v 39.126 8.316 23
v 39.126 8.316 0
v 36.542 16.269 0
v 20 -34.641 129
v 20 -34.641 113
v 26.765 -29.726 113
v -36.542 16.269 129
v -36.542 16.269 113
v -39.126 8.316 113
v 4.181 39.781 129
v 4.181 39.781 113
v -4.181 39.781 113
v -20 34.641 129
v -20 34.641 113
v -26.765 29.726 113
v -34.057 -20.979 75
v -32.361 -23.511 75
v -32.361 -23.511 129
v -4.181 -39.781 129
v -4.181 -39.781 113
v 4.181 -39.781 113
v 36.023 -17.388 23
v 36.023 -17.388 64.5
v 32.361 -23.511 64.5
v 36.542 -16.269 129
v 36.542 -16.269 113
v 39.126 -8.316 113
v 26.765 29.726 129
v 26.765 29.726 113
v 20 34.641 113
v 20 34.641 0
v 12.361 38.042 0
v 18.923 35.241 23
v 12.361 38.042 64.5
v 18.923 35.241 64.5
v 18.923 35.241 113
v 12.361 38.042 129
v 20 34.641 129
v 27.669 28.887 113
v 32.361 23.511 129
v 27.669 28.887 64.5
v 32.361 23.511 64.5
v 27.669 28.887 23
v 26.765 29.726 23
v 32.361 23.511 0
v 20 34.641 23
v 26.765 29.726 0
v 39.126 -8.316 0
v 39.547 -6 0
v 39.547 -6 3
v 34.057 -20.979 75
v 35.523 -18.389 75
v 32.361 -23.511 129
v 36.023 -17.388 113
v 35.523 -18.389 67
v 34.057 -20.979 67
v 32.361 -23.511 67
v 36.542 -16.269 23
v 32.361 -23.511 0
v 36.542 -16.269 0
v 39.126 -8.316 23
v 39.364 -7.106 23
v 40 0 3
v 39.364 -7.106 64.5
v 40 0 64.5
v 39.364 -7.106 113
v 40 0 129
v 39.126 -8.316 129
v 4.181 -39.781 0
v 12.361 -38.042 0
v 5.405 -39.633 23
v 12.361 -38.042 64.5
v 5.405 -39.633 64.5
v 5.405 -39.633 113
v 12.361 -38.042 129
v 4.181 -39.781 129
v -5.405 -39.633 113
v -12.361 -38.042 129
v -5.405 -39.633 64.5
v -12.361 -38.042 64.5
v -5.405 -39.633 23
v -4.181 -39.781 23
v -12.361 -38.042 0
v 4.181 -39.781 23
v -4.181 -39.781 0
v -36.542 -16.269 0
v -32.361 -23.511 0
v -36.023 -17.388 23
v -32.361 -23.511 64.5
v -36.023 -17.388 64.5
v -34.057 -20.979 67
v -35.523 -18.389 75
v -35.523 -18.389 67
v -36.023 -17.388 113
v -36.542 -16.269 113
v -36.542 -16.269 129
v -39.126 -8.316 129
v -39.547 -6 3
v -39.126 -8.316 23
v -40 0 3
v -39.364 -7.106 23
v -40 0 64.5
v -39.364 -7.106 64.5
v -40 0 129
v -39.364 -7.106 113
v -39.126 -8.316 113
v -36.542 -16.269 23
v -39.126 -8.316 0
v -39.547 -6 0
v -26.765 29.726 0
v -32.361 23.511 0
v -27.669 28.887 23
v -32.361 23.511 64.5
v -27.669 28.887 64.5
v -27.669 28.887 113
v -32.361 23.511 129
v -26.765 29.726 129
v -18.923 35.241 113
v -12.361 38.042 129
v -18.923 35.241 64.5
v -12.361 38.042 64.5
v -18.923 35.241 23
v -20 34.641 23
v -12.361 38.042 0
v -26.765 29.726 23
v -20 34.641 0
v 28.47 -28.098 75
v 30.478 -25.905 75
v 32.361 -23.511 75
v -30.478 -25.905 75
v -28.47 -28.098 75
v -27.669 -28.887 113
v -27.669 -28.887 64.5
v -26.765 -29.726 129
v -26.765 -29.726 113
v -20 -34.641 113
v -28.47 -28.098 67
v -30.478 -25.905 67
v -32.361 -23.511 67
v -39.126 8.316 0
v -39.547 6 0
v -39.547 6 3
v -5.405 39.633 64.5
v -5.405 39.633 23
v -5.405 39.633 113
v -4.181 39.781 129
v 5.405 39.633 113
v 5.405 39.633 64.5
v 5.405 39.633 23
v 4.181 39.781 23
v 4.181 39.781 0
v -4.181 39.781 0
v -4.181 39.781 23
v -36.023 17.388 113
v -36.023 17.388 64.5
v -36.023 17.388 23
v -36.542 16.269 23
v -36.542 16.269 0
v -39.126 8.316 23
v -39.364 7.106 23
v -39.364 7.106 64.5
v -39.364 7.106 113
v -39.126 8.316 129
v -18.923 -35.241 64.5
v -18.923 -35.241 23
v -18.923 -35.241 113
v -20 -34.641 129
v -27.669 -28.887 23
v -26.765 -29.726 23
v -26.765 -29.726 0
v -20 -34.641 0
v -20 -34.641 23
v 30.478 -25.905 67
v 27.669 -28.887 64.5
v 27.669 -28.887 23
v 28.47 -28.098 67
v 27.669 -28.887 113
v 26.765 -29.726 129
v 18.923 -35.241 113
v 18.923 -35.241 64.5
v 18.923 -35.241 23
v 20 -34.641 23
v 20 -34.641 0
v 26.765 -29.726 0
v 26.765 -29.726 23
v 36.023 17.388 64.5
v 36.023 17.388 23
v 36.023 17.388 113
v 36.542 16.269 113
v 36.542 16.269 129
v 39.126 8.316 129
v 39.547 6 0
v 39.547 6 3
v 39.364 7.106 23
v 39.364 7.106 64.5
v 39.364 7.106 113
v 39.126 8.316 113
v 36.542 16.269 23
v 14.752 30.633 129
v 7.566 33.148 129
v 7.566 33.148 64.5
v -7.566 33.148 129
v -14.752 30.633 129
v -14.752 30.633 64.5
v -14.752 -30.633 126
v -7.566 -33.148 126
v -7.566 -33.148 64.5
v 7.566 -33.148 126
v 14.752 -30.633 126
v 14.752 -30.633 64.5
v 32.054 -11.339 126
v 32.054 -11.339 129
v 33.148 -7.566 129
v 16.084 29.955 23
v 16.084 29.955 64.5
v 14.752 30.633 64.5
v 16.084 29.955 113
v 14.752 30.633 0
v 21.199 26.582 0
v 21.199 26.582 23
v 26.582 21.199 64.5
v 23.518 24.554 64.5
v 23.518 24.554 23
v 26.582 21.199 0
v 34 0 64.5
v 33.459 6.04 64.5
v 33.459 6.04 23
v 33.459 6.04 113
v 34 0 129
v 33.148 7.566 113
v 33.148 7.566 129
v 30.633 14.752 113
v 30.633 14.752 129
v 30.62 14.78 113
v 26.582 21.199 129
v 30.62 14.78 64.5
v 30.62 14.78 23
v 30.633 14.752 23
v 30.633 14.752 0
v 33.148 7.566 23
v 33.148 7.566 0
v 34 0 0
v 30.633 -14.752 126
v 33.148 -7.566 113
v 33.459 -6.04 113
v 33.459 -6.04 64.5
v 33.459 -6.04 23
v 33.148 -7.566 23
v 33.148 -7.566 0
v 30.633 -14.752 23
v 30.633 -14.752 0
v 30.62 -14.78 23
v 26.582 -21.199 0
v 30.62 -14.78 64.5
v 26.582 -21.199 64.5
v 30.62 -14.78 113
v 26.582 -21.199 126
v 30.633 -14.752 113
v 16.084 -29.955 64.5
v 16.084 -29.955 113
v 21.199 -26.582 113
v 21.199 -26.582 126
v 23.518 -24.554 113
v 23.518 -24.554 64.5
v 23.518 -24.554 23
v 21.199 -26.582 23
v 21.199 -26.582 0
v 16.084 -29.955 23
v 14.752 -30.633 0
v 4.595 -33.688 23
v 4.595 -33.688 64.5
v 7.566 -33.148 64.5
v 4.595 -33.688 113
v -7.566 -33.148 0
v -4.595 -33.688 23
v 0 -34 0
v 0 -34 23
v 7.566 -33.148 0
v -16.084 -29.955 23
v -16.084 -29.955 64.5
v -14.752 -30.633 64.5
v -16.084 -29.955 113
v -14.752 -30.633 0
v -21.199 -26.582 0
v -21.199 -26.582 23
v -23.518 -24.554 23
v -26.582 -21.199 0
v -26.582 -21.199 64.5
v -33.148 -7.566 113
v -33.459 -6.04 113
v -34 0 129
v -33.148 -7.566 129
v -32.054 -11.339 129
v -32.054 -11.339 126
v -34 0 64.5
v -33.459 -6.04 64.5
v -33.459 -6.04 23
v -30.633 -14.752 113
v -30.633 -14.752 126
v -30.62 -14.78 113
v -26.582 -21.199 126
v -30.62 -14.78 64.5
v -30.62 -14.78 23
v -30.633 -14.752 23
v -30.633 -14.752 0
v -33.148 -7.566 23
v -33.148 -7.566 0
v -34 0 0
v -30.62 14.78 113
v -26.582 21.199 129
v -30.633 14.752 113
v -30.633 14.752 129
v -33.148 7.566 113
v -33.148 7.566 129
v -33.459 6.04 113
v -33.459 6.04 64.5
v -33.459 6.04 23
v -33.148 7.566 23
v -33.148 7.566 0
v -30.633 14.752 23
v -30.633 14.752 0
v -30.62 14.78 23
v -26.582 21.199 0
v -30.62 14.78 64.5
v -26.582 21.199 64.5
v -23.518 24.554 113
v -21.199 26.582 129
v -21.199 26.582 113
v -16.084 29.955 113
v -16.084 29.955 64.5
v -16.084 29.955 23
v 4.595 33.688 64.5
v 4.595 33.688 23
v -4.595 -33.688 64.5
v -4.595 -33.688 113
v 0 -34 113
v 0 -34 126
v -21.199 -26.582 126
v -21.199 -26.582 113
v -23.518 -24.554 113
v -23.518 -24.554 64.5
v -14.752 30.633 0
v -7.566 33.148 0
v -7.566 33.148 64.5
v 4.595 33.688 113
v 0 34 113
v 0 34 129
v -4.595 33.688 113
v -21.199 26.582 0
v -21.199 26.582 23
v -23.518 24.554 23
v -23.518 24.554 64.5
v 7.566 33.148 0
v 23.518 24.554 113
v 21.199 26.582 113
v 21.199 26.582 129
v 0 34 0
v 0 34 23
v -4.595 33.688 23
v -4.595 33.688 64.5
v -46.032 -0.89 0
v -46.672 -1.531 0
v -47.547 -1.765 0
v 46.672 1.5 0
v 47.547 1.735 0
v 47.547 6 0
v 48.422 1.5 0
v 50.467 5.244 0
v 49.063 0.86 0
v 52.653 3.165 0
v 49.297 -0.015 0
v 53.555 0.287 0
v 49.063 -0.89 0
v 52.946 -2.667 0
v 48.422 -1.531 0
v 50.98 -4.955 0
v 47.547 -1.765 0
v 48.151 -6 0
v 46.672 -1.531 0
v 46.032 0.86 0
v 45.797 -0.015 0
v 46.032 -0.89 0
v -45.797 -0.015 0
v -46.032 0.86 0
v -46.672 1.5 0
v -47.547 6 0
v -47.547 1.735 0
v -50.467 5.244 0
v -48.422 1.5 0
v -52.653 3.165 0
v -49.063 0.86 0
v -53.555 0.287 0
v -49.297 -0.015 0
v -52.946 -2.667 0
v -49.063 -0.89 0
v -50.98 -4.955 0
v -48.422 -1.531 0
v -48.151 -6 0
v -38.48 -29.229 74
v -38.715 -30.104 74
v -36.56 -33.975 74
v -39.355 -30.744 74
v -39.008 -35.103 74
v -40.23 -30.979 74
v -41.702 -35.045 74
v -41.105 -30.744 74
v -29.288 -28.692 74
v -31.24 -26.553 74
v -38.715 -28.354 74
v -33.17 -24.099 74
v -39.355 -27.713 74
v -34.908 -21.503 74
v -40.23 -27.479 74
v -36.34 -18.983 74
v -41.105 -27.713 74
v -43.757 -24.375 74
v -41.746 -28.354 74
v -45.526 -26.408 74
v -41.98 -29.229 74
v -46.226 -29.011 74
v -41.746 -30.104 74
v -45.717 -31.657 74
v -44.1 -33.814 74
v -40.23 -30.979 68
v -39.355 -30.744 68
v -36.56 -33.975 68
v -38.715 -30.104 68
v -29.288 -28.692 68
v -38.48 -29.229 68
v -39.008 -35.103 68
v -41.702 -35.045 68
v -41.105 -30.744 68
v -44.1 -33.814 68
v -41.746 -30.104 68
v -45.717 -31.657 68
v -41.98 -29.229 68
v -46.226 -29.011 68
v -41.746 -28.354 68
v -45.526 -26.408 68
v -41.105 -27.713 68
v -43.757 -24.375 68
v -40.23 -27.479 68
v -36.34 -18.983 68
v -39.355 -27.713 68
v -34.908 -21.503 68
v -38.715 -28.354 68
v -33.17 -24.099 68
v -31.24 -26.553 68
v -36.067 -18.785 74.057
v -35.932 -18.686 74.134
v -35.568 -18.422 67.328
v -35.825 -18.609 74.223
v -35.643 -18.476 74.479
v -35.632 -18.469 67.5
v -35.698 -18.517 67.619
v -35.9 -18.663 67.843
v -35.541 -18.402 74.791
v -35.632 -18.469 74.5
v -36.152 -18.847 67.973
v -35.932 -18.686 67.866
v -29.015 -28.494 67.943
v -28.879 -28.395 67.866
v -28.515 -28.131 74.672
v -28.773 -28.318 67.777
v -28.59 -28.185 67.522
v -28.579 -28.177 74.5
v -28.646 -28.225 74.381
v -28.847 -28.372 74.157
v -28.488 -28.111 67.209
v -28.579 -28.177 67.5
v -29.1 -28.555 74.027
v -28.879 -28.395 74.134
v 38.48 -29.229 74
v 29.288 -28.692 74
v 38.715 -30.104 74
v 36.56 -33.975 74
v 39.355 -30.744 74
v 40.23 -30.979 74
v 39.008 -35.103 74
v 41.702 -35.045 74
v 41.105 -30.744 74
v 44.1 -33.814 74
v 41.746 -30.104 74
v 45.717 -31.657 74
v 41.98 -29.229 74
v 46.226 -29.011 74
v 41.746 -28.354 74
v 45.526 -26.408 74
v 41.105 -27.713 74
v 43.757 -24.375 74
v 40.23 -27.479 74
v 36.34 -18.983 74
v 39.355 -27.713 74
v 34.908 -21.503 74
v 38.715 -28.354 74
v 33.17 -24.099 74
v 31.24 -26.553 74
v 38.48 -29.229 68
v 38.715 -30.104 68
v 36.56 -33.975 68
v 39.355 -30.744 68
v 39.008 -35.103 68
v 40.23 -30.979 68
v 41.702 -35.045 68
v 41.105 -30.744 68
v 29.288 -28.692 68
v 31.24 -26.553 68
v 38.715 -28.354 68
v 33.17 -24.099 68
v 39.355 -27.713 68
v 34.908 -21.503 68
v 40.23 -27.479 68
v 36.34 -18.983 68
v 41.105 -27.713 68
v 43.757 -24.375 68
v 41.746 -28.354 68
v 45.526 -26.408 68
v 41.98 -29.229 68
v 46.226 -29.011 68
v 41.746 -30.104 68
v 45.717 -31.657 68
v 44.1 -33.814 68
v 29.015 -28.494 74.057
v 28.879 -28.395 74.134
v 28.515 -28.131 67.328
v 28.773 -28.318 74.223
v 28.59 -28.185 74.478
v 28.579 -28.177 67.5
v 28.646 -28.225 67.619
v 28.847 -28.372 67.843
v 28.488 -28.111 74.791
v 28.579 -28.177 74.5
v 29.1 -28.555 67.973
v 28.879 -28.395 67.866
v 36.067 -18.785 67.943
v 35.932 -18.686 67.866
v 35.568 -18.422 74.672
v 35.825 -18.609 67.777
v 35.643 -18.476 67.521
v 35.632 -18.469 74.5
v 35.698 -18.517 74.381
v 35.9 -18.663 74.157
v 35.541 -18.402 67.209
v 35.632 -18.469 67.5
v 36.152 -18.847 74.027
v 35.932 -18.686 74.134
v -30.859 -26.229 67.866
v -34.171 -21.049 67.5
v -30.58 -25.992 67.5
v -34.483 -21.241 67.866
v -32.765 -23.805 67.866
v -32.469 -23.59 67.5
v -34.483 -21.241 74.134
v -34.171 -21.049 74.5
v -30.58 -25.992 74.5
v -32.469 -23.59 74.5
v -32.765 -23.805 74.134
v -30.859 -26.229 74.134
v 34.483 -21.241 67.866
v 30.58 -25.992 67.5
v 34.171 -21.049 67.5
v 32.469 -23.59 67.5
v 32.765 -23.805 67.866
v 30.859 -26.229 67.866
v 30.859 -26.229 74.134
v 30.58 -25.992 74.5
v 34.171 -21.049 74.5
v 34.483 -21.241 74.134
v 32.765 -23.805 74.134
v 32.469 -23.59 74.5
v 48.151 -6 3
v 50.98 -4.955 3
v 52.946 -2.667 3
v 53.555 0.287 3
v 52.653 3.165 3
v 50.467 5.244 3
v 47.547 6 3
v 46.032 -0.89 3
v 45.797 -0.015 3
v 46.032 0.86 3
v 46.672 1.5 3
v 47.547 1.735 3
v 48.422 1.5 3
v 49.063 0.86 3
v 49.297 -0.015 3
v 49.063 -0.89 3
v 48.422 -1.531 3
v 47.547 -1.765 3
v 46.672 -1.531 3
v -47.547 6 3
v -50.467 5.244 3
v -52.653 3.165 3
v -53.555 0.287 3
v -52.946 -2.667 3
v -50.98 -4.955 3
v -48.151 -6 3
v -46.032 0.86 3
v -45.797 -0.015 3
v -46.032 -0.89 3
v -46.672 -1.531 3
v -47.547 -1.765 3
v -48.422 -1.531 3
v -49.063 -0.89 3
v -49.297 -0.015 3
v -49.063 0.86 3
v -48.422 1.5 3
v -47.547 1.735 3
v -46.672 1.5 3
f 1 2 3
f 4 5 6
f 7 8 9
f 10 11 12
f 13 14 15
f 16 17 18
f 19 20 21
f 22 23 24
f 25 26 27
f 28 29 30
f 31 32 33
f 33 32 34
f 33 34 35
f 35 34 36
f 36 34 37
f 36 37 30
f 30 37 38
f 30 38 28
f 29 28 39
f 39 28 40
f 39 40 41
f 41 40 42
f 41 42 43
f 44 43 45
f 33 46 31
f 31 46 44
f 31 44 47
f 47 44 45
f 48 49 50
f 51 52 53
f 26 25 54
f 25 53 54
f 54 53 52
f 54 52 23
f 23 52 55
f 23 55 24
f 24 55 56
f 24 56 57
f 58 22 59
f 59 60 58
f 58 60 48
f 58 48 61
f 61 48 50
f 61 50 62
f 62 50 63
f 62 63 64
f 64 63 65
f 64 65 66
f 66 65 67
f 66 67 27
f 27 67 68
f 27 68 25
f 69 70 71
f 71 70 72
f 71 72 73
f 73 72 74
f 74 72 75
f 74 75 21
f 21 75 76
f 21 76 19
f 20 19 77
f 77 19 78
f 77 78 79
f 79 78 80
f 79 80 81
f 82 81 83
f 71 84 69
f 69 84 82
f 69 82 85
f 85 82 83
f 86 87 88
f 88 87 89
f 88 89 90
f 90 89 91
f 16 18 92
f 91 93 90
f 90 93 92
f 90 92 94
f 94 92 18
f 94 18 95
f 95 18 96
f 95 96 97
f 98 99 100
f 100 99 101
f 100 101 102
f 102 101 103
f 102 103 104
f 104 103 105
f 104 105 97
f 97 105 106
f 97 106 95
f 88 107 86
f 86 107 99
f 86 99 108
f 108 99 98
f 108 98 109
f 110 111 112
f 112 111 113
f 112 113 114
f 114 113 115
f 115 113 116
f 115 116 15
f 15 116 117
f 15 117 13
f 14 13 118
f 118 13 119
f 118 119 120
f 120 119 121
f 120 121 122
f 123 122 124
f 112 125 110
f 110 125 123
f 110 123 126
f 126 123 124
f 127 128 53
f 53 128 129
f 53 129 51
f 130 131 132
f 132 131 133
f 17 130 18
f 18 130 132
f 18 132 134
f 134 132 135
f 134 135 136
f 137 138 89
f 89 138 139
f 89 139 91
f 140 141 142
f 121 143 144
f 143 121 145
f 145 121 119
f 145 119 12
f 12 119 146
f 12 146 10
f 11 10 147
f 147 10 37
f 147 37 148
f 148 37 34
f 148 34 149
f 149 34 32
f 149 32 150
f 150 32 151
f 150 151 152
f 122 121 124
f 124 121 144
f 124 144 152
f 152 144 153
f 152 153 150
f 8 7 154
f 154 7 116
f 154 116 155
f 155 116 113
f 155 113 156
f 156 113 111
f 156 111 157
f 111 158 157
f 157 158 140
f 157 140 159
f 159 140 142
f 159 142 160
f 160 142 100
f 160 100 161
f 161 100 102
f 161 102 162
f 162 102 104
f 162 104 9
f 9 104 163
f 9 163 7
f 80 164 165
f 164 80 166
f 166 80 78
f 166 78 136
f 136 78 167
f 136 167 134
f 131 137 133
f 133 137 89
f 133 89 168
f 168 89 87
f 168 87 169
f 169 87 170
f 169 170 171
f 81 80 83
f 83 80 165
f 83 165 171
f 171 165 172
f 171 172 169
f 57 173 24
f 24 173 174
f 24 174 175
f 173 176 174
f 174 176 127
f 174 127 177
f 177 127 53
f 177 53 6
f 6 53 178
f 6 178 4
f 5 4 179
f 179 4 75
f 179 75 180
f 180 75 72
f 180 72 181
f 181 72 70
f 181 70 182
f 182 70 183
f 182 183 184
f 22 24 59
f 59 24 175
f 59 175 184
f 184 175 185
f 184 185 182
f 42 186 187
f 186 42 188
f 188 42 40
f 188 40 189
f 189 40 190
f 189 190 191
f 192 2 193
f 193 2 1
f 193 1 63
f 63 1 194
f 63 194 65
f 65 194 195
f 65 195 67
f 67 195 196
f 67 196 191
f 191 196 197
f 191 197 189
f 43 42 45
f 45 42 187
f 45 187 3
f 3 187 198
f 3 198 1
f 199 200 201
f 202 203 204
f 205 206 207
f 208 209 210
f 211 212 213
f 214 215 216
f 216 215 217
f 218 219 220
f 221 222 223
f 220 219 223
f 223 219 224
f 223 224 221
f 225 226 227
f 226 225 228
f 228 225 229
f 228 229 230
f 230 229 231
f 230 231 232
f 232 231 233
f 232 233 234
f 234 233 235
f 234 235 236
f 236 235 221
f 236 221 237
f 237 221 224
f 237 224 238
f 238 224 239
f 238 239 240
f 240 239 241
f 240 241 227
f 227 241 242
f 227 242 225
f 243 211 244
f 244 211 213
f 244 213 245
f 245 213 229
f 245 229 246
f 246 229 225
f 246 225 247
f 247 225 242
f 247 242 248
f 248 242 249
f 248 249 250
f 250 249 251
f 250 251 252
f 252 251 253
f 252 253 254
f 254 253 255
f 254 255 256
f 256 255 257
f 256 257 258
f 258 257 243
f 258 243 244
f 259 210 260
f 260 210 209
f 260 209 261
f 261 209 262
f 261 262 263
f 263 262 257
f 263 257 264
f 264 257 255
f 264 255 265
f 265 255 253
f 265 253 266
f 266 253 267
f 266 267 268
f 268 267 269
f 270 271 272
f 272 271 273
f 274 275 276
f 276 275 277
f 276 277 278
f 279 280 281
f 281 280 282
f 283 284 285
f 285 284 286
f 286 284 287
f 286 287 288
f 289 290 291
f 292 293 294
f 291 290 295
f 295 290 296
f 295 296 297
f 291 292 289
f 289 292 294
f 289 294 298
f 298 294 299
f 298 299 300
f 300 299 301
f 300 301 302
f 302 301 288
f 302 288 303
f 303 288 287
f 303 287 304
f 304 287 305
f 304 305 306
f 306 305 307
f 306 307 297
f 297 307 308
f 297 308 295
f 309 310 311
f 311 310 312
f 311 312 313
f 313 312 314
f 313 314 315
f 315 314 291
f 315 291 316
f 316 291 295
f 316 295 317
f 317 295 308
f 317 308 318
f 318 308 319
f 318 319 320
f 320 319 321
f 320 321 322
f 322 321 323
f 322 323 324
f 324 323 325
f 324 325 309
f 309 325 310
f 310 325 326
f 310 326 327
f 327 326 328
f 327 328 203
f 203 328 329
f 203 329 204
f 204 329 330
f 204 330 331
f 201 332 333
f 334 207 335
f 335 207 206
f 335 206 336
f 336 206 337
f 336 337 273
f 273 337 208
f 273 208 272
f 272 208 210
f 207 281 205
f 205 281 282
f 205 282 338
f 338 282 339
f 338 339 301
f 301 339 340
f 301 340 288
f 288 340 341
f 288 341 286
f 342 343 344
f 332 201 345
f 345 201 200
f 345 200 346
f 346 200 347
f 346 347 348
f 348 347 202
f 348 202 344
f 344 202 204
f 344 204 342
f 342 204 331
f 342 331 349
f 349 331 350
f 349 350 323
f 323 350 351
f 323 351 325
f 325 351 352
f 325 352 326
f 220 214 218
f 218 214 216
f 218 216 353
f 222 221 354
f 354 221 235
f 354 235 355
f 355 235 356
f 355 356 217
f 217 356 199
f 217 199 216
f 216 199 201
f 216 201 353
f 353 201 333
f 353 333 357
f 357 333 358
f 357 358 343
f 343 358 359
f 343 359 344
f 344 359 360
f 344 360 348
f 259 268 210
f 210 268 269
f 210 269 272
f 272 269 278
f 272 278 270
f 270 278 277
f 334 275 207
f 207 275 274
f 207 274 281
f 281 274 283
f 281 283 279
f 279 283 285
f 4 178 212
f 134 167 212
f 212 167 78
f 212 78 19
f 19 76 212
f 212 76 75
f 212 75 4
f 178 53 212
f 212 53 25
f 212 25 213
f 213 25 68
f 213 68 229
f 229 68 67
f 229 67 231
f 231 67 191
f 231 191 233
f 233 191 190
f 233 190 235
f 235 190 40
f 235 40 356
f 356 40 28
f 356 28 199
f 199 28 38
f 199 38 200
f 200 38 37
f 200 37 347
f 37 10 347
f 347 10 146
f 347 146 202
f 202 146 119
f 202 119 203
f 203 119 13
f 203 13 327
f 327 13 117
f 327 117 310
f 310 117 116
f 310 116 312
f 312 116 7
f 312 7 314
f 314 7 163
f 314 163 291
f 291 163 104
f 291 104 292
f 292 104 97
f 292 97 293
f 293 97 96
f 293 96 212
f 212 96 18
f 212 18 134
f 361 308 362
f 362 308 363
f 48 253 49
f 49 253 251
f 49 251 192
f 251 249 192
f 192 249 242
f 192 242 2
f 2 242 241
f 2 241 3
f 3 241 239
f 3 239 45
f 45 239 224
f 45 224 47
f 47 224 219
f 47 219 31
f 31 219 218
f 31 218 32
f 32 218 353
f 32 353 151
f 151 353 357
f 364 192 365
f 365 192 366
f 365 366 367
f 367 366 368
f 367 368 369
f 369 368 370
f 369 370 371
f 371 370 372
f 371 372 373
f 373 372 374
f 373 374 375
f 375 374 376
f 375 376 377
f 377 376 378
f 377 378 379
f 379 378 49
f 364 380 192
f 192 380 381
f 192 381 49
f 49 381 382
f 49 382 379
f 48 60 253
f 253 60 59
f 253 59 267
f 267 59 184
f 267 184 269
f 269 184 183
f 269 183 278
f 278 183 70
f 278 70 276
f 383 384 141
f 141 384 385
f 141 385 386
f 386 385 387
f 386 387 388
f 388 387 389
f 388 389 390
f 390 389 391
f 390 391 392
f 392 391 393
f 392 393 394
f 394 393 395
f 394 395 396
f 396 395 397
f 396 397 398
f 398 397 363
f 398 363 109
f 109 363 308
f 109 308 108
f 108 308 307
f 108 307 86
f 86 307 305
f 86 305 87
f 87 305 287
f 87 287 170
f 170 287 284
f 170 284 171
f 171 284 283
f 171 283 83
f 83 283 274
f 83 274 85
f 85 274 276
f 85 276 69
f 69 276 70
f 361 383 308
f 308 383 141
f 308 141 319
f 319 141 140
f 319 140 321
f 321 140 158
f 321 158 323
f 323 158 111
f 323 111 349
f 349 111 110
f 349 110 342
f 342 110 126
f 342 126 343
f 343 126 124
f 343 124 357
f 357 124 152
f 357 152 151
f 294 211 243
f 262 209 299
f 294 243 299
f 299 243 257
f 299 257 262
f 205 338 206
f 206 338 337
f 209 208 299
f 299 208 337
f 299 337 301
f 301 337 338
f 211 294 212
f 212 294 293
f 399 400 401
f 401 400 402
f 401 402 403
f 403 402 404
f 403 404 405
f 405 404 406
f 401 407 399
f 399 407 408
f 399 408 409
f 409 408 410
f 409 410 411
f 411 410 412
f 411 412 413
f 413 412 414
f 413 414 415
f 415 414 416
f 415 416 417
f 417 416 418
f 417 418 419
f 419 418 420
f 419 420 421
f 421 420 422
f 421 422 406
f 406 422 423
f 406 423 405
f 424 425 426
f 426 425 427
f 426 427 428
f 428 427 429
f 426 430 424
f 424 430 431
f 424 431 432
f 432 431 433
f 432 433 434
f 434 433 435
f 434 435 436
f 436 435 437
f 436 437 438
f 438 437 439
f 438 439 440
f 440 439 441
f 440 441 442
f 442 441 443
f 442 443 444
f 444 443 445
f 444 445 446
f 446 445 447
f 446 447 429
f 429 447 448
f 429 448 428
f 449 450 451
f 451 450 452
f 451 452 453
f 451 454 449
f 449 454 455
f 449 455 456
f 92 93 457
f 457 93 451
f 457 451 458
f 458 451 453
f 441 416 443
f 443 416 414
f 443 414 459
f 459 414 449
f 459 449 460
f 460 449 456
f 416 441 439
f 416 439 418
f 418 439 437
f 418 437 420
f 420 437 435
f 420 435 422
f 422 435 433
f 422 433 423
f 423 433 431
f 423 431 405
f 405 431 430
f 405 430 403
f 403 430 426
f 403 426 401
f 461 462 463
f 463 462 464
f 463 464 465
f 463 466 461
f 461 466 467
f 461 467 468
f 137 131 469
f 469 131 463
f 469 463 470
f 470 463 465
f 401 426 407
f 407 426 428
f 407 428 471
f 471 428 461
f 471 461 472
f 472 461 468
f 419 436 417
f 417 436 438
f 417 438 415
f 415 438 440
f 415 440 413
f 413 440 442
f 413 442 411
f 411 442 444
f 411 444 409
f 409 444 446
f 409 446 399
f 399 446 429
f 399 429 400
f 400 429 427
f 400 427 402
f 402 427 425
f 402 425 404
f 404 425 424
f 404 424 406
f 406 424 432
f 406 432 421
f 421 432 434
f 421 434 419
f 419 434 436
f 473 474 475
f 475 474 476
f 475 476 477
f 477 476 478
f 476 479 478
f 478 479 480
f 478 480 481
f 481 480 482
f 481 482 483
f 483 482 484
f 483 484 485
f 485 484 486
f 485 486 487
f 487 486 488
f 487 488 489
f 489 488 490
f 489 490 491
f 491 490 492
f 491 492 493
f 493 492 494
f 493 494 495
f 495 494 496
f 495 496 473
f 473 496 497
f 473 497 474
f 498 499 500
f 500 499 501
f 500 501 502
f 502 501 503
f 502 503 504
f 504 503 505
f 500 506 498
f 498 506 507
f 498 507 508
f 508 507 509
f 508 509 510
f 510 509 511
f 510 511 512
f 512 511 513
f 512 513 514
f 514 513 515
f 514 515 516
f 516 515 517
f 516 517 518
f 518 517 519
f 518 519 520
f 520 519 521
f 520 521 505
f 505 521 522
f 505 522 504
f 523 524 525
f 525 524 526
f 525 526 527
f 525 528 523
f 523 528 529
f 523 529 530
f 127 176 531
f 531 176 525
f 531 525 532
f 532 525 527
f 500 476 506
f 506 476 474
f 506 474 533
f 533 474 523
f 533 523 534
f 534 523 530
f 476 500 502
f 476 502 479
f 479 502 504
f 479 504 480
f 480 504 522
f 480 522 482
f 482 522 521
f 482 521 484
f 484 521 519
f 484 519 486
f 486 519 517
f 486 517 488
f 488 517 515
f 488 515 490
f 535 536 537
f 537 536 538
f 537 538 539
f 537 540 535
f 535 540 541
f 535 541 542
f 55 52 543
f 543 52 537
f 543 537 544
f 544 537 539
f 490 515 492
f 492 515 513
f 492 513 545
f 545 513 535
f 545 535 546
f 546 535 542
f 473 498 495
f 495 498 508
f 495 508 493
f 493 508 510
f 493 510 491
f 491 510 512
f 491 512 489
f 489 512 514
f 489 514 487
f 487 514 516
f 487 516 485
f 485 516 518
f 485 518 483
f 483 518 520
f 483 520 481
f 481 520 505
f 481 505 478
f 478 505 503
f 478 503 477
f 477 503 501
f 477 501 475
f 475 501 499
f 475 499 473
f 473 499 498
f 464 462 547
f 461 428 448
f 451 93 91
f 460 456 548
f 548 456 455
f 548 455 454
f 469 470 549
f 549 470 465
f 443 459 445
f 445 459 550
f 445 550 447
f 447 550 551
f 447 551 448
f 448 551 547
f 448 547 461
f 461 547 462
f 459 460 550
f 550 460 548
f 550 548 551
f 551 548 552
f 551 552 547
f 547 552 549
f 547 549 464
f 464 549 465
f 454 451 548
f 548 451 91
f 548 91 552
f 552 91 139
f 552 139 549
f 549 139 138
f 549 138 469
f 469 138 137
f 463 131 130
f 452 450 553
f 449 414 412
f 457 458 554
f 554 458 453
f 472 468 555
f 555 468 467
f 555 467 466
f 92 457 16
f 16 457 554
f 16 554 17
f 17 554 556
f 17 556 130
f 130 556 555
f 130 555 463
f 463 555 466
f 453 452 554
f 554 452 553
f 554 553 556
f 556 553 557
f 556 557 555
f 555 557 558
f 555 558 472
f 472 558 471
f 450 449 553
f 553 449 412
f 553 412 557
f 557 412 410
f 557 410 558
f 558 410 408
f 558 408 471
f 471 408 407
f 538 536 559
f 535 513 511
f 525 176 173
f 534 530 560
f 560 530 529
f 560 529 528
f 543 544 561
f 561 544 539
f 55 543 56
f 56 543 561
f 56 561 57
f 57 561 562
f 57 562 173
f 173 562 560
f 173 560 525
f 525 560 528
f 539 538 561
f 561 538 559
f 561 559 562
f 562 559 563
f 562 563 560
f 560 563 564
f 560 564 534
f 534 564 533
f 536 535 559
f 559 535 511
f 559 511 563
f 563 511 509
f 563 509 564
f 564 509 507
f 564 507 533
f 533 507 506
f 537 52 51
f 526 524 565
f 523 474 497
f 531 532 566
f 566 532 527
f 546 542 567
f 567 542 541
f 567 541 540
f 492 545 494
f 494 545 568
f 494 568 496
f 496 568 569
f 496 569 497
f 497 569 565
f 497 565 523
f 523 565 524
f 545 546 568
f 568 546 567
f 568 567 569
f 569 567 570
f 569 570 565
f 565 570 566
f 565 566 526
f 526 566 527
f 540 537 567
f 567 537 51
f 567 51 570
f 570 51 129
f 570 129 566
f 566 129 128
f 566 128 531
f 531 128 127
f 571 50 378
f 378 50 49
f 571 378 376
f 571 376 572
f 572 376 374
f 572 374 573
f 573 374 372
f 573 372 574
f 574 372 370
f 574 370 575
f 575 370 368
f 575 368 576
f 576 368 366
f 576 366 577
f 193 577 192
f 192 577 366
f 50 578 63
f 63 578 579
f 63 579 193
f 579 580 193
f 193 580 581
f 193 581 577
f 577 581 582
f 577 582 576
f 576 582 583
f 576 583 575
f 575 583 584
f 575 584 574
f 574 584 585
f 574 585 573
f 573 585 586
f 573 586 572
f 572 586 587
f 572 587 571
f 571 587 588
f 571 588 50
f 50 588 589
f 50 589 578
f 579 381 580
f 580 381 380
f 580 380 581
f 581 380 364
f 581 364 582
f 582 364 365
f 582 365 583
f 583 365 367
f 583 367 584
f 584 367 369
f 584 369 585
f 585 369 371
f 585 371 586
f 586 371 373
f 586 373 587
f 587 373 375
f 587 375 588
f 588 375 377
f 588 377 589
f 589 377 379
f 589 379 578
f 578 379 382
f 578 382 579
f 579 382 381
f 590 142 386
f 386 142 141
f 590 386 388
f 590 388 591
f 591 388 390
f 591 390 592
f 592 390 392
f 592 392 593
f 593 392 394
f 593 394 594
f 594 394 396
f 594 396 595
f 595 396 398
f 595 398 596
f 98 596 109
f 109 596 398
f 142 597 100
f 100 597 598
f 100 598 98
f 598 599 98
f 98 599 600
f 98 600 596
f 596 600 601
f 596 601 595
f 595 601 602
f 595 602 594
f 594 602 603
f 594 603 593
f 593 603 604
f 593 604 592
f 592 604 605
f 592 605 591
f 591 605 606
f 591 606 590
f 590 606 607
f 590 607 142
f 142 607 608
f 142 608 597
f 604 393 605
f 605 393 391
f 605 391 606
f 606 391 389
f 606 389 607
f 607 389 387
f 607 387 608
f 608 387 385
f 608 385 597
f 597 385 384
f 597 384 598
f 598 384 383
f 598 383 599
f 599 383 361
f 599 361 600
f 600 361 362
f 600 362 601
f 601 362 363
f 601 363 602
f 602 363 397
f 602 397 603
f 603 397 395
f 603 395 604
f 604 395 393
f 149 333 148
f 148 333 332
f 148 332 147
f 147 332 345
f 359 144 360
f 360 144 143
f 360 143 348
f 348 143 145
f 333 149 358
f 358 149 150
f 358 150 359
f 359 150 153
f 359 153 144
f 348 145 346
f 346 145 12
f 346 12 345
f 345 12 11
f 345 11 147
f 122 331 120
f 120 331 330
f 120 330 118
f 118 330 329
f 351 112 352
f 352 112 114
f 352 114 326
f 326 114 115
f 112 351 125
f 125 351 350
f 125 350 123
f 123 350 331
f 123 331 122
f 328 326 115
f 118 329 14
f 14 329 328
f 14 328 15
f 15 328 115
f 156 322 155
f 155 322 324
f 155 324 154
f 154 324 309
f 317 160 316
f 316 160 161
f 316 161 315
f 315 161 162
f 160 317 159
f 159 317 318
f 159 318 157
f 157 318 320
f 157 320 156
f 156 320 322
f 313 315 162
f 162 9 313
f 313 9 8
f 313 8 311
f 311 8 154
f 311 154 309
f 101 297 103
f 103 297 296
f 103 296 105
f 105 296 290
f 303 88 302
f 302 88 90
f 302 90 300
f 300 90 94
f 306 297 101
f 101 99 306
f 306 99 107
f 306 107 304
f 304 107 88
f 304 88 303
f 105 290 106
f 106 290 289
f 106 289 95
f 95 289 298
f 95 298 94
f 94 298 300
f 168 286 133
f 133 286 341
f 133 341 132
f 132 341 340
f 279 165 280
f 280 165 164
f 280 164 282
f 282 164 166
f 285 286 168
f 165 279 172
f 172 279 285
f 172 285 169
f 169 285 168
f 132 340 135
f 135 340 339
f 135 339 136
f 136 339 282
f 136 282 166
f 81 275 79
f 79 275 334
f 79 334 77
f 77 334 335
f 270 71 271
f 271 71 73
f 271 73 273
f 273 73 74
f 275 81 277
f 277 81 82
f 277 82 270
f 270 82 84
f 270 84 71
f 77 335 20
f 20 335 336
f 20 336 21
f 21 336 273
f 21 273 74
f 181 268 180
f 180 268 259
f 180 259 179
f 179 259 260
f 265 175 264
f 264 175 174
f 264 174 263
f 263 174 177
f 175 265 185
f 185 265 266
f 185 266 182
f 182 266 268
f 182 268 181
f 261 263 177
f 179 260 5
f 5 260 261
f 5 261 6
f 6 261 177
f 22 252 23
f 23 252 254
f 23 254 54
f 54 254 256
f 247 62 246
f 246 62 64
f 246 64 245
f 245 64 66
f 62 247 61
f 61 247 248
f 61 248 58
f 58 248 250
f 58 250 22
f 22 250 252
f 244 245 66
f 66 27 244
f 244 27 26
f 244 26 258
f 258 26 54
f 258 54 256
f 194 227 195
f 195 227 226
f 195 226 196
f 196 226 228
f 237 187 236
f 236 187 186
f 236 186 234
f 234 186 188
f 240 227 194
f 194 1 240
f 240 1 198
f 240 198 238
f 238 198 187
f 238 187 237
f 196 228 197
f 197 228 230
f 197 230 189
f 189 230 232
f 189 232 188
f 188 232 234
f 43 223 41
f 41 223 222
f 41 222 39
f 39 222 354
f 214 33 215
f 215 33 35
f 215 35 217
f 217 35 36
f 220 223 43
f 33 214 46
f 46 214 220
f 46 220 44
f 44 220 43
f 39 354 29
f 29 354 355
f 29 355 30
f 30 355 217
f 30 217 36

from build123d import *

# Parameters (mm, degrees)
SKETCH2_R           = 40
SKETCH2_R_2         = 34
BOSS_EXTRUDE1_DEPTH = 129
BOSS_EXTRUDE2_START = -3
BOSS_EXTRUDE2_DEPTH = 3
SKETCH4_R           = 1.75
BOSS_EXTRUDE3_DEPTH = 6
FILLET1_R           = 1
SKETCH5_R           = 1.75
BOSS_EXTRUDE4_DEPTH = 3
CUT_EXTRUDE1_DEPTH  = 45


with BuildPart() as part:
    # Sketch2 → Boss-Extrude1 (new body)
    with BuildSketch(Plane.XY):
        Circle(SKETCH2_R)
        Circle(SKETCH2_R_2, mode=Mode.SUBTRACT)
    extrude(amount=BOSS_EXTRUDE1_DEPTH)

    # Sketch3 → Boss-Extrude2 (add)
    with BuildSketch(Plane.XY.offset(129).offset(BOSS_EXTRUDE2_START)):
        with BuildLine():
            Line((-38.359258991, -11.338749917), (38.359258991, -11.338749917))
            ThreePointArc((38.359258991, -11.338749917), (0, -40), (-38.359258991, -11.338749917))
        make_face()
    extrude(amount=BOSS_EXTRUDE2_DEPTH)

    # Sketch4 → Boss-Extrude3 (add)
    # profile 1 of 2: a face of its own
    with BuildSketch(Plane.XY.offset(68)):
        with BuildLine():
            Line((-35.522508154, -18.388893781), (-43.756797007, -24.37476605))
            ThreePointArc((-43.756797007, -24.37476605), (-45.030952367, -32.827711895), (-36.559912698, -33.975427997))
            Line((-36.559912698, -33.975427997), (-28.469742754, -28.097575474))
            ThreePointArc((-28.469742754, -28.097575474), (-32.362272311, -23.509217998), (-35.522508154, -18.388893781))
        make_face()
        with Locations((-40.230085493, -29.228868016)):
            Circle(SKETCH4_R, mode=Mode.SUBTRACT)
    # profile 2 of 2: a face of its own
    with BuildSketch(Plane.XY.offset(68)):
        with BuildLine():
            Line((28.469742754, -28.097575474), (36.559912698, -33.975427997))
            ThreePointArc((36.559912698, -33.975427997), (45.030952367, -32.827711895), (43.756797007, -24.37476605))
            Line((43.756797007, -24.37476605), (35.522508154, -18.388893781))
            ThreePointArc((35.522508154, -18.388893781), (32.362272311, -23.509217998), (28.469742754, -28.097575474))
        make_face()
        with Locations(Location((40.230085493, -29.228868016, 0), (0, 0, 180))):
            Circle(SKETCH4_R, mode=Mode.SUBTRACT)
    extrude(amount=BOSS_EXTRUDE3_DEPTH)

    # Fillet1
    fillet1_edges = [part.edges().sort_by_distance(p)[0] for p in [
        (-32.362272311, -23.509217998, 74),
        (-32.362272311, -23.509217998, 68),
        (32.362272311, -23.509217998, 74),
        (32.362272311, -23.509217998, 68),
    ]]
    fillet(fillet1_edges, radius=FILLET1_R)

    # Sketch5 → Boss-Extrude4 (add)
    # profile 1 of 2: a face of its own
    with BuildSketch(Plane(origin=(0, 0, 0), x_dir=(-1, 0, 0), z_dir=(0, 0, -1))):
        with BuildLine():
            Line((-39.547439867, 6), (-47.547439867, 6))
            ThreePointArc((-47.547439867, 6), (-53.555028976, 0.287066347), (-48.151184551, -6))
            Line((-48.151184551, -6), (-39.547439867, -6))
            ThreePointArc((-39.547439867, -6), (-40, 0), (-39.547439867, 6))
        make_face()
        with Locations((-47.547439867, -0.015187819)):
            Circle(SKETCH5_R, mode=Mode.SUBTRACT)
    # profile 2 of 2: a face of its own
    with BuildSketch(Plane(origin=(0, 0, 0), x_dir=(-1, 0, 0), z_dir=(0, 0, -1))):
        with BuildLine():
            Line((39.547439867, -6), (48.151184551, -6))
            ThreePointArc((48.151184551, -6), (53.555028976, 0.287066347), (47.547439867, 6))
            Line((47.547439867, 6), (39.547439867, 6))
            ThreePointArc((39.547439867, 6), (40, 0), (39.547439867, -6))
        make_face()
        with Locations(Location((47.547439867, -0.015187819, 0), (0, 0, 180))):
            Circle(SKETCH5_R, mode=Mode.SUBTRACT)
    extrude(amount=-BOSS_EXTRUDE4_DEPTH)

    # Sketch6 → Cut-Extrude1 (cut, symmetric)
    with BuildSketch(Plane.XY.offset(68)):
        with BuildLine():
            Line((-5.405405405, 39.633087092), (-4.594594595, 33.688124028))
            ThreePointArc((-4.594594595, 33.688124028), (0, 34), (4.594594595, 33.688124028))
            Line((4.594594595, 33.688124028), (5.405405405, 39.633087092))
            ThreePointArc((5.405405405, 39.633087092), (0, 40), (-5.405405405, 39.633087092))
        make_face()
        with BuildLine():
            Line((18.922679261, 35.241058577), (16.084277372, 29.95489979))
            ThreePointArc((16.084277372, 29.95489979), (19.984698578, 27.506577809), (23.51848759, 24.553629904))
            Line((23.51848759, 24.553629904), (27.66880893, 28.886623417))
            ThreePointArc((27.66880893, 28.886623417), (23.511410092, 32.360679775), (18.922679261, 35.241058577))
        make_face()
        with BuildLine():
            Line((36.022943608, 17.388143485), (30.619502066, 14.779921962))
            ThreePointArc((30.619502066, 14.779921962), (32.335921554, 10.506577809), (33.45911769, 6.040483704))
            Line((33.45911769, 6.040483704), (39.363667871, 7.106451417))
            ThreePointArc((39.363667871, 7.106451417), (38.042260652, 12.360679775), (36.022943608, 17.388143485))
        make_face()
        with BuildLine():
            Line((39.363667871, -7.106451417), (33.45911769, -6.040483704))
            ThreePointArc((33.45911769, -6.040483704), (32.335921554, -10.506577809), (30.619502066, -14.779921962))
            Line((30.619502066, -14.779921962), (36.022943608, -17.388143485))
            ThreePointArc((36.022943608, -17.388143485), (38.042260652, -12.360679775), (39.363667871, -7.106451417))
        make_face()
        with BuildLine():
            Line((27.66880893, -28.886623417), (23.51848759, -24.553629904))
            ThreePointArc((23.51848759, -24.553629904), (19.984698578, -27.506577809), (16.084277372, -29.95489979))
            Line((16.084277372, -29.95489979), (18.922679261, -35.241058577))
            ThreePointArc((18.922679261, -35.241058577), (23.511410092, -32.360679775), (27.66880893, -28.886623417))
        make_face()
        with BuildLine():
            Line((5.405405405, -39.633087092), (4.594594595, -33.688124028))
            ThreePointArc((4.594594595, -33.688124028), (0, -34), (-4.594594595, -33.688124028))
            Line((-4.594594595, -33.688124028), (-5.405405405, -39.633087092))
            ThreePointArc((-5.405405405, -39.633087092), (0, -40), (5.405405405, -39.633087092))
        make_face()
        with BuildLine():
            Line((-18.922679261, -35.241058577), (-16.084277372, -29.95489979))
            ThreePointArc((-16.084277372, -29.95489979), (-19.984698578, -27.506577809), (-23.51848759, -24.553629904))
            Line((-23.51848759, -24.553629904), (-27.66880893, -28.886623417))
            ThreePointArc((-27.66880893, -28.886623417), (-23.511410092, -32.360679775), (-18.922679261, -35.241058577))
        make_face()
        with BuildLine():
            Line((-36.022943608, -17.388143485), (-30.619502066, -14.779921962))
            ThreePointArc((-30.619502066, -14.779921962), (-32.335921554, -10.506577809), (-33.45911769, -6.040483704))
            Line((-33.45911769, -6.040483704), (-39.363667871, -7.106451417))
            ThreePointArc((-39.363667871, -7.106451417), (-38.042260652, -12.360679775), (-36.022943608, -17.388143485))
        make_face()
        with BuildLine():
            Line((-39.363667871, 7.106451417), (-33.45911769, 6.040483704))
            ThreePointArc((-33.45911769, 6.040483704), (-32.335921554, 10.506577809), (-30.619502066, 14.779921962))
            Line((-30.619502066, 14.779921962), (-36.022943608, 17.388143485))
            ThreePointArc((-36.022943608, 17.388143485), (-38.042260652, 12.360679775), (-39.363667871, 7.106451417))
        make_face()
        with BuildLine():
            Line((-27.66880893, 28.886623417), (-23.51848759, 24.553629904))
            ThreePointArc((-23.51848759, 24.553629904), (-19.984698578, 27.506577809), (-16.084277372, 29.95489979))
            Line((-16.084277372, 29.95489979), (-18.922679261, 35.241058577))
            ThreePointArc((-18.922679261, 35.241058577), (-23.511410092, 32.360679775), (-27.66880893, 28.886623417))
        make_face()
    extrude(amount=CUT_EXTRUDE1_DEPTH, both=True, mode=Mode.SUBTRACT)


solid = part.part
